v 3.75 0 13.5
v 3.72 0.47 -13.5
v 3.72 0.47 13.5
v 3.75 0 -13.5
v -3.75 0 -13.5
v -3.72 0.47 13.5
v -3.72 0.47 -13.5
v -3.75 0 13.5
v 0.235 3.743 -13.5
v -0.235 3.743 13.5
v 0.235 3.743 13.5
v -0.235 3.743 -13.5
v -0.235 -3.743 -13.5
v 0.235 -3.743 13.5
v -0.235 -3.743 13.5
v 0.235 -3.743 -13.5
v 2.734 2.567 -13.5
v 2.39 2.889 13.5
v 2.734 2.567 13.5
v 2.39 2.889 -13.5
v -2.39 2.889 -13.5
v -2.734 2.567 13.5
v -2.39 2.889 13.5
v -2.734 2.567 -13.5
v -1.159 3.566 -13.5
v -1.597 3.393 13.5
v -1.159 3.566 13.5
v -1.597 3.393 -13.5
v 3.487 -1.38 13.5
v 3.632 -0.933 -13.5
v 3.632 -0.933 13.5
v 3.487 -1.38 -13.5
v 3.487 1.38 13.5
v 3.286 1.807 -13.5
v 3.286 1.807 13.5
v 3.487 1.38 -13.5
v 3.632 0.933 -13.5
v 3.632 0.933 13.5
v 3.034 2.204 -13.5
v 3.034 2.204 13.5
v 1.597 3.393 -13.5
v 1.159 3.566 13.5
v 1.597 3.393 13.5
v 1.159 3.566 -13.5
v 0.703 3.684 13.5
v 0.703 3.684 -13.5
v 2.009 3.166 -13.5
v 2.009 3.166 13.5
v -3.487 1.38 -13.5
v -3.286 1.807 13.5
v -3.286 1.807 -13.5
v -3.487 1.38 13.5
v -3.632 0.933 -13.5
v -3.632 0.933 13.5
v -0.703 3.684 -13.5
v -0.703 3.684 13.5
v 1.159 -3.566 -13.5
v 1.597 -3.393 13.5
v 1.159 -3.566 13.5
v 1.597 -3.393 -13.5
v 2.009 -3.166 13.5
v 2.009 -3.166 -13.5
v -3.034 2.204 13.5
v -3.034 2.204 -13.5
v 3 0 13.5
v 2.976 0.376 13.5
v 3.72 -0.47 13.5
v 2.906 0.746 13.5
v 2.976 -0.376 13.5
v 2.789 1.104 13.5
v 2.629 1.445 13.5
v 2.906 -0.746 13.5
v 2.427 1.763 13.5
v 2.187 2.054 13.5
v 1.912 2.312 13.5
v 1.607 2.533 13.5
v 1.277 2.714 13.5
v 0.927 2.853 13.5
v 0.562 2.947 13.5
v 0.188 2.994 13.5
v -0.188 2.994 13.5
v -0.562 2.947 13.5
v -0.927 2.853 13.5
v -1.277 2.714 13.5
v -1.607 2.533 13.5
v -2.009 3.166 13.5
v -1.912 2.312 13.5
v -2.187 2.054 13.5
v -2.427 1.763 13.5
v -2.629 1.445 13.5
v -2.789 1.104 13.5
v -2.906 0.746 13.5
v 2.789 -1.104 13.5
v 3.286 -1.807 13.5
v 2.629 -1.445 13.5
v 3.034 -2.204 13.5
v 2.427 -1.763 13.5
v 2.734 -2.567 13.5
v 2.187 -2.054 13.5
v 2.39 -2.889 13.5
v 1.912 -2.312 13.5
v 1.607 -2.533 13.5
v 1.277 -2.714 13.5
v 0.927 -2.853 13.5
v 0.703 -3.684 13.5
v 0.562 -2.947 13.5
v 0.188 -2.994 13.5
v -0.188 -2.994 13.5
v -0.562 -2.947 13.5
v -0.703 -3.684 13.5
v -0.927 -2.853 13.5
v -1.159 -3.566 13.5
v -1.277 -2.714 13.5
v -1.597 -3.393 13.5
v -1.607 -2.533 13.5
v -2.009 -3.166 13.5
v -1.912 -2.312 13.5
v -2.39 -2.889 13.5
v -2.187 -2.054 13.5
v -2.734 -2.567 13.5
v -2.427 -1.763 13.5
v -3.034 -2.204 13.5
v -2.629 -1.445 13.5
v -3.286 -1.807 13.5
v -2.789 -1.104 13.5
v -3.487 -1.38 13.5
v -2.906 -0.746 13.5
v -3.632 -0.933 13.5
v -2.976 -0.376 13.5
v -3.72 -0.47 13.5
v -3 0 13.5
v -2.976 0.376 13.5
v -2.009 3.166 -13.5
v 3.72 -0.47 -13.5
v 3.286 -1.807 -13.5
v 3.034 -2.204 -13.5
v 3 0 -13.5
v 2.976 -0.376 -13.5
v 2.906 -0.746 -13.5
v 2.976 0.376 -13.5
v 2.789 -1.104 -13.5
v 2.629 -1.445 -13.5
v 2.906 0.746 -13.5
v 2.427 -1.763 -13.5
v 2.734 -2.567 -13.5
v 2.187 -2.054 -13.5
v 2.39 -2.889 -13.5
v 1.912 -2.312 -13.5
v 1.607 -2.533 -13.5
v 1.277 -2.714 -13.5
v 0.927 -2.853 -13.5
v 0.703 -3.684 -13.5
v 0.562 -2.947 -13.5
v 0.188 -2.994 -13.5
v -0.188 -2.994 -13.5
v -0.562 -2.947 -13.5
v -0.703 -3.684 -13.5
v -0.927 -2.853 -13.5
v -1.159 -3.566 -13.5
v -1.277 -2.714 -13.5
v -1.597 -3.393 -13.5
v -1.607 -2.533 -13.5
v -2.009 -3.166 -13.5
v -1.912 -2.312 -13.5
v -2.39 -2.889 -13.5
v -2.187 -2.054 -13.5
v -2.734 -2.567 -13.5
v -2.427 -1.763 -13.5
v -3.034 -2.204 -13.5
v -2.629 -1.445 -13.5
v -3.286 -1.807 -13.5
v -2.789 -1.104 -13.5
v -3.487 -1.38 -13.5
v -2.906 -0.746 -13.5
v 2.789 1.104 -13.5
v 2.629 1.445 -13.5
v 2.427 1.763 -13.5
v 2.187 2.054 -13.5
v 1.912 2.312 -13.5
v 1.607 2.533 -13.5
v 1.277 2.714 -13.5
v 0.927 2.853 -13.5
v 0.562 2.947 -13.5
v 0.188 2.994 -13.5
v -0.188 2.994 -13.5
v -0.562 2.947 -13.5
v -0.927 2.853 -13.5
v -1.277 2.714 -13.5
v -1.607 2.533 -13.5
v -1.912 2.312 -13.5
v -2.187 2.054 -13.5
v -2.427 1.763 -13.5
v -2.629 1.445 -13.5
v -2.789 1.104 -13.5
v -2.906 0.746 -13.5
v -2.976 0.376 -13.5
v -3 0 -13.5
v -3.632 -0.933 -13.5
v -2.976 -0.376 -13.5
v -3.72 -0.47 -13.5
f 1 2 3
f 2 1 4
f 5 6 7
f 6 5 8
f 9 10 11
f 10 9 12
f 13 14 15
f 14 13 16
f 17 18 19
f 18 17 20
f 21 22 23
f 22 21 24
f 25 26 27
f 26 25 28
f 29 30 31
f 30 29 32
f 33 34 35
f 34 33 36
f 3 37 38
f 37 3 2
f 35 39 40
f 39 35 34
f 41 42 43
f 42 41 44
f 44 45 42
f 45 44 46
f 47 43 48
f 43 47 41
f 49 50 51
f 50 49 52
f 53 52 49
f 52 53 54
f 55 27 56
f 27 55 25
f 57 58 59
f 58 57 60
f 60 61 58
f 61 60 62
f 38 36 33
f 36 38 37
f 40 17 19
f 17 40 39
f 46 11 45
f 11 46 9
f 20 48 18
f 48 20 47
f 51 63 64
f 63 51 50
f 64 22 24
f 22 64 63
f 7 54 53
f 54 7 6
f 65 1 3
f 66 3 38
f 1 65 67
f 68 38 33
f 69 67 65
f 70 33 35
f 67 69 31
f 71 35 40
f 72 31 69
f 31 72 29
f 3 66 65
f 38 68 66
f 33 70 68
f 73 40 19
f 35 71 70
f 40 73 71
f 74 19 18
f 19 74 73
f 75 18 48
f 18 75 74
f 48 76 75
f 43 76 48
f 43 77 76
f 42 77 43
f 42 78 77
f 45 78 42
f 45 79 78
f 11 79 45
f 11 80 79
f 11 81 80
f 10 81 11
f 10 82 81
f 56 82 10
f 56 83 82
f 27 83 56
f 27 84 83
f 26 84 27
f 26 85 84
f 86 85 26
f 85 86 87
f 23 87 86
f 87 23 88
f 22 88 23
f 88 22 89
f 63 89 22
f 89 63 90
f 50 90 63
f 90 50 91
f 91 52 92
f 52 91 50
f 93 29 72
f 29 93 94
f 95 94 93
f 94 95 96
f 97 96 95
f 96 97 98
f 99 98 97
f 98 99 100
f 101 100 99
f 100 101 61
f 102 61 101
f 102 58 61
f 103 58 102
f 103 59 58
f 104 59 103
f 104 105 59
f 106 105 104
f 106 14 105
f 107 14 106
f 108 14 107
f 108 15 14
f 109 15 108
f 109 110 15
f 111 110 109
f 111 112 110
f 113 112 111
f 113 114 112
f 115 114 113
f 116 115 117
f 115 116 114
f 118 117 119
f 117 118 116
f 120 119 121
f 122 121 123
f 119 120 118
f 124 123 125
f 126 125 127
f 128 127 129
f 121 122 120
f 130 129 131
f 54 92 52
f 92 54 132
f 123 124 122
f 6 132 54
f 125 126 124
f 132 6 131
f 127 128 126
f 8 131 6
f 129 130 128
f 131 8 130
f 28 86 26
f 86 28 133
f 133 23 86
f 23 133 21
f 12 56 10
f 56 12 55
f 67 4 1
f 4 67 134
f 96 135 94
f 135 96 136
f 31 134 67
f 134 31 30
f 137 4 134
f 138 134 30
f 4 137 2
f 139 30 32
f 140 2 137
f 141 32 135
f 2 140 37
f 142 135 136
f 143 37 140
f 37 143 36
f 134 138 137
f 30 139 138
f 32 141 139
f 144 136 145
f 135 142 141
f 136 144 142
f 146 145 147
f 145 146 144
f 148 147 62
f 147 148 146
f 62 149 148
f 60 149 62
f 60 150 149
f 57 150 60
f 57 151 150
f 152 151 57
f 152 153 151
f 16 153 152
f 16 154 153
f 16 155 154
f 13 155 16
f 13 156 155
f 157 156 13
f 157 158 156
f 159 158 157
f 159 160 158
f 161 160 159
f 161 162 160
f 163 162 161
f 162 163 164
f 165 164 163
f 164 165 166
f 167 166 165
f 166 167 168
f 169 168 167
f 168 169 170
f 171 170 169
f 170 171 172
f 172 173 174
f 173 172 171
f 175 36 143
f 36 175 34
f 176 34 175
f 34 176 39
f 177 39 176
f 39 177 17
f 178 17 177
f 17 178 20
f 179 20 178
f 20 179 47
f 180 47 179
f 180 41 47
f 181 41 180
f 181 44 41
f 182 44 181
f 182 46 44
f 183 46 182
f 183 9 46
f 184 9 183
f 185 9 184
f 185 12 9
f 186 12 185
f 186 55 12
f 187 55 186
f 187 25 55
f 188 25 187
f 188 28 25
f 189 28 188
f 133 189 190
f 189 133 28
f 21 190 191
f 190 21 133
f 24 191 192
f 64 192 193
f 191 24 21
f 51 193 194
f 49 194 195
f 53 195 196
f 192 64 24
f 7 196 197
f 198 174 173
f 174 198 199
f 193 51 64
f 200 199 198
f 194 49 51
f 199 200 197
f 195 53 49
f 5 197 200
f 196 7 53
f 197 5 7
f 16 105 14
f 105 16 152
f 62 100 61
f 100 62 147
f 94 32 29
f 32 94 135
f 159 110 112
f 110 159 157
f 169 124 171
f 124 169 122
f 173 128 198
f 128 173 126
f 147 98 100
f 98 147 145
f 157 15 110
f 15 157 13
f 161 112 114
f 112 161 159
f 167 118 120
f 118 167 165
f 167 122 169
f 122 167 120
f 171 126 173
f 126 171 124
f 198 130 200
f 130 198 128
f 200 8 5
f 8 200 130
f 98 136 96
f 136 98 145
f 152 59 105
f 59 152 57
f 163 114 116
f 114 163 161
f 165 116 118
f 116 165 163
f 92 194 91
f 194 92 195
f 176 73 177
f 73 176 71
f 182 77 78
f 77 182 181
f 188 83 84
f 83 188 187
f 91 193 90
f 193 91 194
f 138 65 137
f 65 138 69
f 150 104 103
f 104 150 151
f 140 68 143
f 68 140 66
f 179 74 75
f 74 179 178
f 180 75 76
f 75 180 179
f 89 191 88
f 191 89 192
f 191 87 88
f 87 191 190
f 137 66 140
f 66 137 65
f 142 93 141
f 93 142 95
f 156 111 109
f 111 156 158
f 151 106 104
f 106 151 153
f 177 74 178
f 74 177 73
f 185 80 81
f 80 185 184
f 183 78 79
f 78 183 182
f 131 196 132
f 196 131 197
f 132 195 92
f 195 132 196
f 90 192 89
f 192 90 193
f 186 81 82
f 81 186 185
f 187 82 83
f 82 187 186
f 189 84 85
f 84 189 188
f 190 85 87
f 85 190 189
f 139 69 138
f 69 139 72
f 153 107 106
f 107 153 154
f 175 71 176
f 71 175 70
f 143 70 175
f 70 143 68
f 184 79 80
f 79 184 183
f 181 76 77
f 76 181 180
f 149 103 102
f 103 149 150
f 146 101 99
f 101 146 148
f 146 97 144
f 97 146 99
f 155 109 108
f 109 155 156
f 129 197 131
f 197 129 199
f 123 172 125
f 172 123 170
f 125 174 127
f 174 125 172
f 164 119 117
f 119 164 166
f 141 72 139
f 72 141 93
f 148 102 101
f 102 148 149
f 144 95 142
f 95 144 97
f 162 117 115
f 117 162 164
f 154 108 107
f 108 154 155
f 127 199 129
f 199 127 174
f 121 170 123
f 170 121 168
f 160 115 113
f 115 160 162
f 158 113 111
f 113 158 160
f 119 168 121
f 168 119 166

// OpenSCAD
$fn = 50;


difference() {
	union() {
		translate(v = [0, 0, -13.5000000000]) {
			cylinder(h = 27, r = 3.7500000000);
		}
	}
	union() {
		translate(v = [0, 0, -100.0000000000]) {
			cylinder(h = 200, r = 3.0000000000);
		}
	}
}
